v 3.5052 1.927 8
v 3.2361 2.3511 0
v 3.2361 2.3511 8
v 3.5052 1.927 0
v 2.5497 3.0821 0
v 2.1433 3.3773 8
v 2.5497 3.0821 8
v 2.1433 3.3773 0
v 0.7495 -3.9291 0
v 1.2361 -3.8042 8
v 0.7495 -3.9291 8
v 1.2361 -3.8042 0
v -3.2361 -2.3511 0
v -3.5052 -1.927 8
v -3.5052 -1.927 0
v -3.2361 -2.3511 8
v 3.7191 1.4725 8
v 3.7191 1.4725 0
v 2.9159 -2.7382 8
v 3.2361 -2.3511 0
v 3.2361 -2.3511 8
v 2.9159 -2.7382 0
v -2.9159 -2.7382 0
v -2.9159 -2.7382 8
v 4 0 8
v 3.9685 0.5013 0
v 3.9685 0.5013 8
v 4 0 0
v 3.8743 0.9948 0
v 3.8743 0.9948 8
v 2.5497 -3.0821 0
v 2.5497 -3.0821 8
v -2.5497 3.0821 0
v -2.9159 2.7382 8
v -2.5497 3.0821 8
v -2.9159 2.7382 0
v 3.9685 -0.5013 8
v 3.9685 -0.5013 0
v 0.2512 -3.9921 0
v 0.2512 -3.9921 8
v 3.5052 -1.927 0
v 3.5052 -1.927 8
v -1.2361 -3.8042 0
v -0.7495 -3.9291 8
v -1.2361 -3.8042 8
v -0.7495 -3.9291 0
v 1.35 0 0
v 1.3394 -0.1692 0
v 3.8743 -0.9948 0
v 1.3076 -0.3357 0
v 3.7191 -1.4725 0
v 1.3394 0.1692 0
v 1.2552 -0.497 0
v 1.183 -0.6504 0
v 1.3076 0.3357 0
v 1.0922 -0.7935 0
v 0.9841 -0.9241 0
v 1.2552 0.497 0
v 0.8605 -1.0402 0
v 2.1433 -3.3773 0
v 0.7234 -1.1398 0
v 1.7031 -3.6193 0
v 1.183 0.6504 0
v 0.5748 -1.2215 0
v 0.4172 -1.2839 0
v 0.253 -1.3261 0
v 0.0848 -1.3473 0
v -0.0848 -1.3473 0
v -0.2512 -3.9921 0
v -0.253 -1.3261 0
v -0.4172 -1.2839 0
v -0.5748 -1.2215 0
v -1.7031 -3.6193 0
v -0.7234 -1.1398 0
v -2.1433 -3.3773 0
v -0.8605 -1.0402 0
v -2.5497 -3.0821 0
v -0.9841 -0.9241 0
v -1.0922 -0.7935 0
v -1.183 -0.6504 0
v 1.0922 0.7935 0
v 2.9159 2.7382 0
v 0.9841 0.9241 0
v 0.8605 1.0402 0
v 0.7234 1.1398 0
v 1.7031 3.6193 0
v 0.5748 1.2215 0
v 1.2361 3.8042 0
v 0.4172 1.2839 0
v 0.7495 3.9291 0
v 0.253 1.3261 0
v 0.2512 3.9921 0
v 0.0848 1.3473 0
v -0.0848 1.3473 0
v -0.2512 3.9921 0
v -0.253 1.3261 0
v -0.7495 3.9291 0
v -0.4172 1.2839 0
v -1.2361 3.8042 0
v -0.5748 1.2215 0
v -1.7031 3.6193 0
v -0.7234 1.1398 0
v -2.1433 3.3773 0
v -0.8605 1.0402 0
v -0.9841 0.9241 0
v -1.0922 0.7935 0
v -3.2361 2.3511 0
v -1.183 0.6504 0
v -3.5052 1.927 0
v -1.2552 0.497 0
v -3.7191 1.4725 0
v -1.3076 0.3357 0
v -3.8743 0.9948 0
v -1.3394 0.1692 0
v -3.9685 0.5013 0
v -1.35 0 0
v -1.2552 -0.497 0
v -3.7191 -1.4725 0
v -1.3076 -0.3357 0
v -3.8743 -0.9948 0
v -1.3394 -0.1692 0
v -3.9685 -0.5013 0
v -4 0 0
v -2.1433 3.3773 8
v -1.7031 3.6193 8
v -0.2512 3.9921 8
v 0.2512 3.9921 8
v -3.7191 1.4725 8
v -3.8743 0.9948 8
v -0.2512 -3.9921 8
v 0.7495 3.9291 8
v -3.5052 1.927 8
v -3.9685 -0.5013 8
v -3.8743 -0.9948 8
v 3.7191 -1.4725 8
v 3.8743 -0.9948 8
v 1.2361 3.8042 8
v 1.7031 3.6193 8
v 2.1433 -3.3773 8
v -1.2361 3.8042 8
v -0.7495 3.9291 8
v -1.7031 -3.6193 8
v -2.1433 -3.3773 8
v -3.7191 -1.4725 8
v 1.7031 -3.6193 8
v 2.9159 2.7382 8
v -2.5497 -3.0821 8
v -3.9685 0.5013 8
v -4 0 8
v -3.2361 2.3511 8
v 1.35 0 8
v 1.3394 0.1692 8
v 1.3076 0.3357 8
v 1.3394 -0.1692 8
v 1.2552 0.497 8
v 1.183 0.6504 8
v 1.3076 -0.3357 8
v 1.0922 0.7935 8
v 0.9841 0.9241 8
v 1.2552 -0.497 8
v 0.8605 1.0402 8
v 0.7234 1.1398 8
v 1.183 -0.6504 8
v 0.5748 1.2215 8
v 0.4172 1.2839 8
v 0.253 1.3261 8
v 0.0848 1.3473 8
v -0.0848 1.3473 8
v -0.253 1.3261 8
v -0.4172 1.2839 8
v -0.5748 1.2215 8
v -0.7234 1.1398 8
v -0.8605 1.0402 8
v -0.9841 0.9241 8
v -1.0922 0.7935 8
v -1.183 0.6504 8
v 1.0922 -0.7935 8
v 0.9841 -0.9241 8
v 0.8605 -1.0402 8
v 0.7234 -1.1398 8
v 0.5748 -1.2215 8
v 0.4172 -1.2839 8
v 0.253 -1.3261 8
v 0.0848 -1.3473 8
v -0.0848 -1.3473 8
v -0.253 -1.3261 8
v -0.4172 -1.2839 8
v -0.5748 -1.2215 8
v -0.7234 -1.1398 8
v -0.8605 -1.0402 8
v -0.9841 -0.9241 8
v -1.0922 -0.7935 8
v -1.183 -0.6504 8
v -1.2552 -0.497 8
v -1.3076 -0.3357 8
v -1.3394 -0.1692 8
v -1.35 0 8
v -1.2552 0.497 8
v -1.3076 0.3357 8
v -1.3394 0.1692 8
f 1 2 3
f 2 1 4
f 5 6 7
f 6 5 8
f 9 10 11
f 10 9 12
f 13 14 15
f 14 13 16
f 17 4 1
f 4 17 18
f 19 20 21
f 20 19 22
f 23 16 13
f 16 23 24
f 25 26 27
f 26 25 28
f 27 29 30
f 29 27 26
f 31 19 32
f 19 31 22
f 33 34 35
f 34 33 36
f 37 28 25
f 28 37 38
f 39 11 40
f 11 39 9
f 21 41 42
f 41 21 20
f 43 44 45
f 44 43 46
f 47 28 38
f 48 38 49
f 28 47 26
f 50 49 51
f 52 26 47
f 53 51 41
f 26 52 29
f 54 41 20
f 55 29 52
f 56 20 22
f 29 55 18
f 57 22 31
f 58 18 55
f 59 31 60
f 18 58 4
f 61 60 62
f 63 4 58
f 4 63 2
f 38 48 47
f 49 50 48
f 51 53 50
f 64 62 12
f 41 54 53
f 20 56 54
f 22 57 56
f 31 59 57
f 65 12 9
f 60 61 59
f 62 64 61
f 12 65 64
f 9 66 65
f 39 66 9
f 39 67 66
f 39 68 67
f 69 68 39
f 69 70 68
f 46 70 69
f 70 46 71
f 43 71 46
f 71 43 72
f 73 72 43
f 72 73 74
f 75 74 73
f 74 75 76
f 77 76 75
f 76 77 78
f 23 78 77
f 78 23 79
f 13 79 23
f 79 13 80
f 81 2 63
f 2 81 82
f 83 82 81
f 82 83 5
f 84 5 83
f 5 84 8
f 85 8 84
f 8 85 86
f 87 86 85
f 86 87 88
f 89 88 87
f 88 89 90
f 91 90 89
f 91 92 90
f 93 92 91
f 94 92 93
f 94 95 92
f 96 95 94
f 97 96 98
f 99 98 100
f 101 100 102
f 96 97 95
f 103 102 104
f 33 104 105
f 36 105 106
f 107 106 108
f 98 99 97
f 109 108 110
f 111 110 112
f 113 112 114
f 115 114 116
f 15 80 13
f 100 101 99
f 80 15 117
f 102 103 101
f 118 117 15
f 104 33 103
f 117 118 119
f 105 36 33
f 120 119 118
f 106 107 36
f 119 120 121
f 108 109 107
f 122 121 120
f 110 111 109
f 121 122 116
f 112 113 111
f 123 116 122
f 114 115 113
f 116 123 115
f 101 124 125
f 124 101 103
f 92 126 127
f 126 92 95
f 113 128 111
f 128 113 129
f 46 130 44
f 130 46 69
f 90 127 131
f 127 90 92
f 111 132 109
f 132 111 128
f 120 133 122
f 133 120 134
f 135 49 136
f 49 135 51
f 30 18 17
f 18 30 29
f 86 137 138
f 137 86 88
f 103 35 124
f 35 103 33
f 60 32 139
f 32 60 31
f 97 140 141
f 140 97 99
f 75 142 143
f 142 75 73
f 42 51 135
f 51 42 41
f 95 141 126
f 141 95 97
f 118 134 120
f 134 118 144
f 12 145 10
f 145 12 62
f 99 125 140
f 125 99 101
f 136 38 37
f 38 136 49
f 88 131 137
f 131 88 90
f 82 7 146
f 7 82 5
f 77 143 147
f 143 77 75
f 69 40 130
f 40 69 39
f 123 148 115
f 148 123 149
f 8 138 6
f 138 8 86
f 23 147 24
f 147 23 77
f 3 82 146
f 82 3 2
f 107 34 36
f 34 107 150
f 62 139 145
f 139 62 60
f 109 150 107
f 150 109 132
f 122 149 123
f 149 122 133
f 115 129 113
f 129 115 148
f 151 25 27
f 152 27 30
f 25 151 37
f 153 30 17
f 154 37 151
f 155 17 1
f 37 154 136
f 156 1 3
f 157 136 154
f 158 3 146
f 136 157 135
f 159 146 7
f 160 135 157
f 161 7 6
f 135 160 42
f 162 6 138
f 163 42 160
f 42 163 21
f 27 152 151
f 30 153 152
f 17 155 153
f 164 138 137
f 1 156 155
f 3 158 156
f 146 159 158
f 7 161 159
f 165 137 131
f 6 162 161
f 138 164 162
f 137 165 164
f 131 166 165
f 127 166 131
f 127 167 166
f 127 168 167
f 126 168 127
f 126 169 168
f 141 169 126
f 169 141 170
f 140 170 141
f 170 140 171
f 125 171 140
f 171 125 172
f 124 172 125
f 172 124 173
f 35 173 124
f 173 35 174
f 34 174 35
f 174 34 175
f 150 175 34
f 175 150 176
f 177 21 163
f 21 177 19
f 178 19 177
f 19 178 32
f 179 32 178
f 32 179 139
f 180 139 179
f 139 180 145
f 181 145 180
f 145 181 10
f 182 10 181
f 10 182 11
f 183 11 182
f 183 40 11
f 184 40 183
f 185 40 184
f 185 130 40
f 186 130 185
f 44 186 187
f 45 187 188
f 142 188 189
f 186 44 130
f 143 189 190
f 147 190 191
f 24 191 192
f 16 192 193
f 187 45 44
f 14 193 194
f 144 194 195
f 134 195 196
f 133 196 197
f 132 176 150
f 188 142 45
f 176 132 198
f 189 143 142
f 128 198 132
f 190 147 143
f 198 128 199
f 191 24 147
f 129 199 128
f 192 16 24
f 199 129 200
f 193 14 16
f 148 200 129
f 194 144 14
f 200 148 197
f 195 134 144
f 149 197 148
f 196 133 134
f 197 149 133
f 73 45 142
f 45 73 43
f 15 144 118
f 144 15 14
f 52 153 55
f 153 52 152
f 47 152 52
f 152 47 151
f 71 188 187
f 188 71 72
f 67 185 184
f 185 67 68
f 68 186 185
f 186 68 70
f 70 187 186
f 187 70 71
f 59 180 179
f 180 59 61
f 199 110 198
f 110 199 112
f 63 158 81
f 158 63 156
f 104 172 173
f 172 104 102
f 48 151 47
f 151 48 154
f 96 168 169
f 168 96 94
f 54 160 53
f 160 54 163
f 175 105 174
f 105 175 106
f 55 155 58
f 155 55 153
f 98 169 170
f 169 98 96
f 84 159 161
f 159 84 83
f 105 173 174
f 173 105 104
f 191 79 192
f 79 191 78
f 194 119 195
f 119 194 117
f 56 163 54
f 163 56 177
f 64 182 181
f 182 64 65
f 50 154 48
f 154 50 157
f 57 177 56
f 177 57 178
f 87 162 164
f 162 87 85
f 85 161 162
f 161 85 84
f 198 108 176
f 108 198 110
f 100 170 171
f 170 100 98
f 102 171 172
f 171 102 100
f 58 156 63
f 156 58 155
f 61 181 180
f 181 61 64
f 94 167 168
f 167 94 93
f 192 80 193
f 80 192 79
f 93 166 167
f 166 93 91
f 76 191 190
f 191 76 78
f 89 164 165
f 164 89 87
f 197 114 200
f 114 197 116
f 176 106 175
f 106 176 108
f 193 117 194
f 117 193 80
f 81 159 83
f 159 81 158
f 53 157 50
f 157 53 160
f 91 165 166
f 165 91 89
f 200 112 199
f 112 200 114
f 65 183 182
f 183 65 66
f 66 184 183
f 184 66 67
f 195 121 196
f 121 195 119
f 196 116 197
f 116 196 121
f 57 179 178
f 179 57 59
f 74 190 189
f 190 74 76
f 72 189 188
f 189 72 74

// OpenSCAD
$fn=50;
difference() {
    cylinder(d=8, h=8);
    cylinder(d=2.7, h=100);
}
